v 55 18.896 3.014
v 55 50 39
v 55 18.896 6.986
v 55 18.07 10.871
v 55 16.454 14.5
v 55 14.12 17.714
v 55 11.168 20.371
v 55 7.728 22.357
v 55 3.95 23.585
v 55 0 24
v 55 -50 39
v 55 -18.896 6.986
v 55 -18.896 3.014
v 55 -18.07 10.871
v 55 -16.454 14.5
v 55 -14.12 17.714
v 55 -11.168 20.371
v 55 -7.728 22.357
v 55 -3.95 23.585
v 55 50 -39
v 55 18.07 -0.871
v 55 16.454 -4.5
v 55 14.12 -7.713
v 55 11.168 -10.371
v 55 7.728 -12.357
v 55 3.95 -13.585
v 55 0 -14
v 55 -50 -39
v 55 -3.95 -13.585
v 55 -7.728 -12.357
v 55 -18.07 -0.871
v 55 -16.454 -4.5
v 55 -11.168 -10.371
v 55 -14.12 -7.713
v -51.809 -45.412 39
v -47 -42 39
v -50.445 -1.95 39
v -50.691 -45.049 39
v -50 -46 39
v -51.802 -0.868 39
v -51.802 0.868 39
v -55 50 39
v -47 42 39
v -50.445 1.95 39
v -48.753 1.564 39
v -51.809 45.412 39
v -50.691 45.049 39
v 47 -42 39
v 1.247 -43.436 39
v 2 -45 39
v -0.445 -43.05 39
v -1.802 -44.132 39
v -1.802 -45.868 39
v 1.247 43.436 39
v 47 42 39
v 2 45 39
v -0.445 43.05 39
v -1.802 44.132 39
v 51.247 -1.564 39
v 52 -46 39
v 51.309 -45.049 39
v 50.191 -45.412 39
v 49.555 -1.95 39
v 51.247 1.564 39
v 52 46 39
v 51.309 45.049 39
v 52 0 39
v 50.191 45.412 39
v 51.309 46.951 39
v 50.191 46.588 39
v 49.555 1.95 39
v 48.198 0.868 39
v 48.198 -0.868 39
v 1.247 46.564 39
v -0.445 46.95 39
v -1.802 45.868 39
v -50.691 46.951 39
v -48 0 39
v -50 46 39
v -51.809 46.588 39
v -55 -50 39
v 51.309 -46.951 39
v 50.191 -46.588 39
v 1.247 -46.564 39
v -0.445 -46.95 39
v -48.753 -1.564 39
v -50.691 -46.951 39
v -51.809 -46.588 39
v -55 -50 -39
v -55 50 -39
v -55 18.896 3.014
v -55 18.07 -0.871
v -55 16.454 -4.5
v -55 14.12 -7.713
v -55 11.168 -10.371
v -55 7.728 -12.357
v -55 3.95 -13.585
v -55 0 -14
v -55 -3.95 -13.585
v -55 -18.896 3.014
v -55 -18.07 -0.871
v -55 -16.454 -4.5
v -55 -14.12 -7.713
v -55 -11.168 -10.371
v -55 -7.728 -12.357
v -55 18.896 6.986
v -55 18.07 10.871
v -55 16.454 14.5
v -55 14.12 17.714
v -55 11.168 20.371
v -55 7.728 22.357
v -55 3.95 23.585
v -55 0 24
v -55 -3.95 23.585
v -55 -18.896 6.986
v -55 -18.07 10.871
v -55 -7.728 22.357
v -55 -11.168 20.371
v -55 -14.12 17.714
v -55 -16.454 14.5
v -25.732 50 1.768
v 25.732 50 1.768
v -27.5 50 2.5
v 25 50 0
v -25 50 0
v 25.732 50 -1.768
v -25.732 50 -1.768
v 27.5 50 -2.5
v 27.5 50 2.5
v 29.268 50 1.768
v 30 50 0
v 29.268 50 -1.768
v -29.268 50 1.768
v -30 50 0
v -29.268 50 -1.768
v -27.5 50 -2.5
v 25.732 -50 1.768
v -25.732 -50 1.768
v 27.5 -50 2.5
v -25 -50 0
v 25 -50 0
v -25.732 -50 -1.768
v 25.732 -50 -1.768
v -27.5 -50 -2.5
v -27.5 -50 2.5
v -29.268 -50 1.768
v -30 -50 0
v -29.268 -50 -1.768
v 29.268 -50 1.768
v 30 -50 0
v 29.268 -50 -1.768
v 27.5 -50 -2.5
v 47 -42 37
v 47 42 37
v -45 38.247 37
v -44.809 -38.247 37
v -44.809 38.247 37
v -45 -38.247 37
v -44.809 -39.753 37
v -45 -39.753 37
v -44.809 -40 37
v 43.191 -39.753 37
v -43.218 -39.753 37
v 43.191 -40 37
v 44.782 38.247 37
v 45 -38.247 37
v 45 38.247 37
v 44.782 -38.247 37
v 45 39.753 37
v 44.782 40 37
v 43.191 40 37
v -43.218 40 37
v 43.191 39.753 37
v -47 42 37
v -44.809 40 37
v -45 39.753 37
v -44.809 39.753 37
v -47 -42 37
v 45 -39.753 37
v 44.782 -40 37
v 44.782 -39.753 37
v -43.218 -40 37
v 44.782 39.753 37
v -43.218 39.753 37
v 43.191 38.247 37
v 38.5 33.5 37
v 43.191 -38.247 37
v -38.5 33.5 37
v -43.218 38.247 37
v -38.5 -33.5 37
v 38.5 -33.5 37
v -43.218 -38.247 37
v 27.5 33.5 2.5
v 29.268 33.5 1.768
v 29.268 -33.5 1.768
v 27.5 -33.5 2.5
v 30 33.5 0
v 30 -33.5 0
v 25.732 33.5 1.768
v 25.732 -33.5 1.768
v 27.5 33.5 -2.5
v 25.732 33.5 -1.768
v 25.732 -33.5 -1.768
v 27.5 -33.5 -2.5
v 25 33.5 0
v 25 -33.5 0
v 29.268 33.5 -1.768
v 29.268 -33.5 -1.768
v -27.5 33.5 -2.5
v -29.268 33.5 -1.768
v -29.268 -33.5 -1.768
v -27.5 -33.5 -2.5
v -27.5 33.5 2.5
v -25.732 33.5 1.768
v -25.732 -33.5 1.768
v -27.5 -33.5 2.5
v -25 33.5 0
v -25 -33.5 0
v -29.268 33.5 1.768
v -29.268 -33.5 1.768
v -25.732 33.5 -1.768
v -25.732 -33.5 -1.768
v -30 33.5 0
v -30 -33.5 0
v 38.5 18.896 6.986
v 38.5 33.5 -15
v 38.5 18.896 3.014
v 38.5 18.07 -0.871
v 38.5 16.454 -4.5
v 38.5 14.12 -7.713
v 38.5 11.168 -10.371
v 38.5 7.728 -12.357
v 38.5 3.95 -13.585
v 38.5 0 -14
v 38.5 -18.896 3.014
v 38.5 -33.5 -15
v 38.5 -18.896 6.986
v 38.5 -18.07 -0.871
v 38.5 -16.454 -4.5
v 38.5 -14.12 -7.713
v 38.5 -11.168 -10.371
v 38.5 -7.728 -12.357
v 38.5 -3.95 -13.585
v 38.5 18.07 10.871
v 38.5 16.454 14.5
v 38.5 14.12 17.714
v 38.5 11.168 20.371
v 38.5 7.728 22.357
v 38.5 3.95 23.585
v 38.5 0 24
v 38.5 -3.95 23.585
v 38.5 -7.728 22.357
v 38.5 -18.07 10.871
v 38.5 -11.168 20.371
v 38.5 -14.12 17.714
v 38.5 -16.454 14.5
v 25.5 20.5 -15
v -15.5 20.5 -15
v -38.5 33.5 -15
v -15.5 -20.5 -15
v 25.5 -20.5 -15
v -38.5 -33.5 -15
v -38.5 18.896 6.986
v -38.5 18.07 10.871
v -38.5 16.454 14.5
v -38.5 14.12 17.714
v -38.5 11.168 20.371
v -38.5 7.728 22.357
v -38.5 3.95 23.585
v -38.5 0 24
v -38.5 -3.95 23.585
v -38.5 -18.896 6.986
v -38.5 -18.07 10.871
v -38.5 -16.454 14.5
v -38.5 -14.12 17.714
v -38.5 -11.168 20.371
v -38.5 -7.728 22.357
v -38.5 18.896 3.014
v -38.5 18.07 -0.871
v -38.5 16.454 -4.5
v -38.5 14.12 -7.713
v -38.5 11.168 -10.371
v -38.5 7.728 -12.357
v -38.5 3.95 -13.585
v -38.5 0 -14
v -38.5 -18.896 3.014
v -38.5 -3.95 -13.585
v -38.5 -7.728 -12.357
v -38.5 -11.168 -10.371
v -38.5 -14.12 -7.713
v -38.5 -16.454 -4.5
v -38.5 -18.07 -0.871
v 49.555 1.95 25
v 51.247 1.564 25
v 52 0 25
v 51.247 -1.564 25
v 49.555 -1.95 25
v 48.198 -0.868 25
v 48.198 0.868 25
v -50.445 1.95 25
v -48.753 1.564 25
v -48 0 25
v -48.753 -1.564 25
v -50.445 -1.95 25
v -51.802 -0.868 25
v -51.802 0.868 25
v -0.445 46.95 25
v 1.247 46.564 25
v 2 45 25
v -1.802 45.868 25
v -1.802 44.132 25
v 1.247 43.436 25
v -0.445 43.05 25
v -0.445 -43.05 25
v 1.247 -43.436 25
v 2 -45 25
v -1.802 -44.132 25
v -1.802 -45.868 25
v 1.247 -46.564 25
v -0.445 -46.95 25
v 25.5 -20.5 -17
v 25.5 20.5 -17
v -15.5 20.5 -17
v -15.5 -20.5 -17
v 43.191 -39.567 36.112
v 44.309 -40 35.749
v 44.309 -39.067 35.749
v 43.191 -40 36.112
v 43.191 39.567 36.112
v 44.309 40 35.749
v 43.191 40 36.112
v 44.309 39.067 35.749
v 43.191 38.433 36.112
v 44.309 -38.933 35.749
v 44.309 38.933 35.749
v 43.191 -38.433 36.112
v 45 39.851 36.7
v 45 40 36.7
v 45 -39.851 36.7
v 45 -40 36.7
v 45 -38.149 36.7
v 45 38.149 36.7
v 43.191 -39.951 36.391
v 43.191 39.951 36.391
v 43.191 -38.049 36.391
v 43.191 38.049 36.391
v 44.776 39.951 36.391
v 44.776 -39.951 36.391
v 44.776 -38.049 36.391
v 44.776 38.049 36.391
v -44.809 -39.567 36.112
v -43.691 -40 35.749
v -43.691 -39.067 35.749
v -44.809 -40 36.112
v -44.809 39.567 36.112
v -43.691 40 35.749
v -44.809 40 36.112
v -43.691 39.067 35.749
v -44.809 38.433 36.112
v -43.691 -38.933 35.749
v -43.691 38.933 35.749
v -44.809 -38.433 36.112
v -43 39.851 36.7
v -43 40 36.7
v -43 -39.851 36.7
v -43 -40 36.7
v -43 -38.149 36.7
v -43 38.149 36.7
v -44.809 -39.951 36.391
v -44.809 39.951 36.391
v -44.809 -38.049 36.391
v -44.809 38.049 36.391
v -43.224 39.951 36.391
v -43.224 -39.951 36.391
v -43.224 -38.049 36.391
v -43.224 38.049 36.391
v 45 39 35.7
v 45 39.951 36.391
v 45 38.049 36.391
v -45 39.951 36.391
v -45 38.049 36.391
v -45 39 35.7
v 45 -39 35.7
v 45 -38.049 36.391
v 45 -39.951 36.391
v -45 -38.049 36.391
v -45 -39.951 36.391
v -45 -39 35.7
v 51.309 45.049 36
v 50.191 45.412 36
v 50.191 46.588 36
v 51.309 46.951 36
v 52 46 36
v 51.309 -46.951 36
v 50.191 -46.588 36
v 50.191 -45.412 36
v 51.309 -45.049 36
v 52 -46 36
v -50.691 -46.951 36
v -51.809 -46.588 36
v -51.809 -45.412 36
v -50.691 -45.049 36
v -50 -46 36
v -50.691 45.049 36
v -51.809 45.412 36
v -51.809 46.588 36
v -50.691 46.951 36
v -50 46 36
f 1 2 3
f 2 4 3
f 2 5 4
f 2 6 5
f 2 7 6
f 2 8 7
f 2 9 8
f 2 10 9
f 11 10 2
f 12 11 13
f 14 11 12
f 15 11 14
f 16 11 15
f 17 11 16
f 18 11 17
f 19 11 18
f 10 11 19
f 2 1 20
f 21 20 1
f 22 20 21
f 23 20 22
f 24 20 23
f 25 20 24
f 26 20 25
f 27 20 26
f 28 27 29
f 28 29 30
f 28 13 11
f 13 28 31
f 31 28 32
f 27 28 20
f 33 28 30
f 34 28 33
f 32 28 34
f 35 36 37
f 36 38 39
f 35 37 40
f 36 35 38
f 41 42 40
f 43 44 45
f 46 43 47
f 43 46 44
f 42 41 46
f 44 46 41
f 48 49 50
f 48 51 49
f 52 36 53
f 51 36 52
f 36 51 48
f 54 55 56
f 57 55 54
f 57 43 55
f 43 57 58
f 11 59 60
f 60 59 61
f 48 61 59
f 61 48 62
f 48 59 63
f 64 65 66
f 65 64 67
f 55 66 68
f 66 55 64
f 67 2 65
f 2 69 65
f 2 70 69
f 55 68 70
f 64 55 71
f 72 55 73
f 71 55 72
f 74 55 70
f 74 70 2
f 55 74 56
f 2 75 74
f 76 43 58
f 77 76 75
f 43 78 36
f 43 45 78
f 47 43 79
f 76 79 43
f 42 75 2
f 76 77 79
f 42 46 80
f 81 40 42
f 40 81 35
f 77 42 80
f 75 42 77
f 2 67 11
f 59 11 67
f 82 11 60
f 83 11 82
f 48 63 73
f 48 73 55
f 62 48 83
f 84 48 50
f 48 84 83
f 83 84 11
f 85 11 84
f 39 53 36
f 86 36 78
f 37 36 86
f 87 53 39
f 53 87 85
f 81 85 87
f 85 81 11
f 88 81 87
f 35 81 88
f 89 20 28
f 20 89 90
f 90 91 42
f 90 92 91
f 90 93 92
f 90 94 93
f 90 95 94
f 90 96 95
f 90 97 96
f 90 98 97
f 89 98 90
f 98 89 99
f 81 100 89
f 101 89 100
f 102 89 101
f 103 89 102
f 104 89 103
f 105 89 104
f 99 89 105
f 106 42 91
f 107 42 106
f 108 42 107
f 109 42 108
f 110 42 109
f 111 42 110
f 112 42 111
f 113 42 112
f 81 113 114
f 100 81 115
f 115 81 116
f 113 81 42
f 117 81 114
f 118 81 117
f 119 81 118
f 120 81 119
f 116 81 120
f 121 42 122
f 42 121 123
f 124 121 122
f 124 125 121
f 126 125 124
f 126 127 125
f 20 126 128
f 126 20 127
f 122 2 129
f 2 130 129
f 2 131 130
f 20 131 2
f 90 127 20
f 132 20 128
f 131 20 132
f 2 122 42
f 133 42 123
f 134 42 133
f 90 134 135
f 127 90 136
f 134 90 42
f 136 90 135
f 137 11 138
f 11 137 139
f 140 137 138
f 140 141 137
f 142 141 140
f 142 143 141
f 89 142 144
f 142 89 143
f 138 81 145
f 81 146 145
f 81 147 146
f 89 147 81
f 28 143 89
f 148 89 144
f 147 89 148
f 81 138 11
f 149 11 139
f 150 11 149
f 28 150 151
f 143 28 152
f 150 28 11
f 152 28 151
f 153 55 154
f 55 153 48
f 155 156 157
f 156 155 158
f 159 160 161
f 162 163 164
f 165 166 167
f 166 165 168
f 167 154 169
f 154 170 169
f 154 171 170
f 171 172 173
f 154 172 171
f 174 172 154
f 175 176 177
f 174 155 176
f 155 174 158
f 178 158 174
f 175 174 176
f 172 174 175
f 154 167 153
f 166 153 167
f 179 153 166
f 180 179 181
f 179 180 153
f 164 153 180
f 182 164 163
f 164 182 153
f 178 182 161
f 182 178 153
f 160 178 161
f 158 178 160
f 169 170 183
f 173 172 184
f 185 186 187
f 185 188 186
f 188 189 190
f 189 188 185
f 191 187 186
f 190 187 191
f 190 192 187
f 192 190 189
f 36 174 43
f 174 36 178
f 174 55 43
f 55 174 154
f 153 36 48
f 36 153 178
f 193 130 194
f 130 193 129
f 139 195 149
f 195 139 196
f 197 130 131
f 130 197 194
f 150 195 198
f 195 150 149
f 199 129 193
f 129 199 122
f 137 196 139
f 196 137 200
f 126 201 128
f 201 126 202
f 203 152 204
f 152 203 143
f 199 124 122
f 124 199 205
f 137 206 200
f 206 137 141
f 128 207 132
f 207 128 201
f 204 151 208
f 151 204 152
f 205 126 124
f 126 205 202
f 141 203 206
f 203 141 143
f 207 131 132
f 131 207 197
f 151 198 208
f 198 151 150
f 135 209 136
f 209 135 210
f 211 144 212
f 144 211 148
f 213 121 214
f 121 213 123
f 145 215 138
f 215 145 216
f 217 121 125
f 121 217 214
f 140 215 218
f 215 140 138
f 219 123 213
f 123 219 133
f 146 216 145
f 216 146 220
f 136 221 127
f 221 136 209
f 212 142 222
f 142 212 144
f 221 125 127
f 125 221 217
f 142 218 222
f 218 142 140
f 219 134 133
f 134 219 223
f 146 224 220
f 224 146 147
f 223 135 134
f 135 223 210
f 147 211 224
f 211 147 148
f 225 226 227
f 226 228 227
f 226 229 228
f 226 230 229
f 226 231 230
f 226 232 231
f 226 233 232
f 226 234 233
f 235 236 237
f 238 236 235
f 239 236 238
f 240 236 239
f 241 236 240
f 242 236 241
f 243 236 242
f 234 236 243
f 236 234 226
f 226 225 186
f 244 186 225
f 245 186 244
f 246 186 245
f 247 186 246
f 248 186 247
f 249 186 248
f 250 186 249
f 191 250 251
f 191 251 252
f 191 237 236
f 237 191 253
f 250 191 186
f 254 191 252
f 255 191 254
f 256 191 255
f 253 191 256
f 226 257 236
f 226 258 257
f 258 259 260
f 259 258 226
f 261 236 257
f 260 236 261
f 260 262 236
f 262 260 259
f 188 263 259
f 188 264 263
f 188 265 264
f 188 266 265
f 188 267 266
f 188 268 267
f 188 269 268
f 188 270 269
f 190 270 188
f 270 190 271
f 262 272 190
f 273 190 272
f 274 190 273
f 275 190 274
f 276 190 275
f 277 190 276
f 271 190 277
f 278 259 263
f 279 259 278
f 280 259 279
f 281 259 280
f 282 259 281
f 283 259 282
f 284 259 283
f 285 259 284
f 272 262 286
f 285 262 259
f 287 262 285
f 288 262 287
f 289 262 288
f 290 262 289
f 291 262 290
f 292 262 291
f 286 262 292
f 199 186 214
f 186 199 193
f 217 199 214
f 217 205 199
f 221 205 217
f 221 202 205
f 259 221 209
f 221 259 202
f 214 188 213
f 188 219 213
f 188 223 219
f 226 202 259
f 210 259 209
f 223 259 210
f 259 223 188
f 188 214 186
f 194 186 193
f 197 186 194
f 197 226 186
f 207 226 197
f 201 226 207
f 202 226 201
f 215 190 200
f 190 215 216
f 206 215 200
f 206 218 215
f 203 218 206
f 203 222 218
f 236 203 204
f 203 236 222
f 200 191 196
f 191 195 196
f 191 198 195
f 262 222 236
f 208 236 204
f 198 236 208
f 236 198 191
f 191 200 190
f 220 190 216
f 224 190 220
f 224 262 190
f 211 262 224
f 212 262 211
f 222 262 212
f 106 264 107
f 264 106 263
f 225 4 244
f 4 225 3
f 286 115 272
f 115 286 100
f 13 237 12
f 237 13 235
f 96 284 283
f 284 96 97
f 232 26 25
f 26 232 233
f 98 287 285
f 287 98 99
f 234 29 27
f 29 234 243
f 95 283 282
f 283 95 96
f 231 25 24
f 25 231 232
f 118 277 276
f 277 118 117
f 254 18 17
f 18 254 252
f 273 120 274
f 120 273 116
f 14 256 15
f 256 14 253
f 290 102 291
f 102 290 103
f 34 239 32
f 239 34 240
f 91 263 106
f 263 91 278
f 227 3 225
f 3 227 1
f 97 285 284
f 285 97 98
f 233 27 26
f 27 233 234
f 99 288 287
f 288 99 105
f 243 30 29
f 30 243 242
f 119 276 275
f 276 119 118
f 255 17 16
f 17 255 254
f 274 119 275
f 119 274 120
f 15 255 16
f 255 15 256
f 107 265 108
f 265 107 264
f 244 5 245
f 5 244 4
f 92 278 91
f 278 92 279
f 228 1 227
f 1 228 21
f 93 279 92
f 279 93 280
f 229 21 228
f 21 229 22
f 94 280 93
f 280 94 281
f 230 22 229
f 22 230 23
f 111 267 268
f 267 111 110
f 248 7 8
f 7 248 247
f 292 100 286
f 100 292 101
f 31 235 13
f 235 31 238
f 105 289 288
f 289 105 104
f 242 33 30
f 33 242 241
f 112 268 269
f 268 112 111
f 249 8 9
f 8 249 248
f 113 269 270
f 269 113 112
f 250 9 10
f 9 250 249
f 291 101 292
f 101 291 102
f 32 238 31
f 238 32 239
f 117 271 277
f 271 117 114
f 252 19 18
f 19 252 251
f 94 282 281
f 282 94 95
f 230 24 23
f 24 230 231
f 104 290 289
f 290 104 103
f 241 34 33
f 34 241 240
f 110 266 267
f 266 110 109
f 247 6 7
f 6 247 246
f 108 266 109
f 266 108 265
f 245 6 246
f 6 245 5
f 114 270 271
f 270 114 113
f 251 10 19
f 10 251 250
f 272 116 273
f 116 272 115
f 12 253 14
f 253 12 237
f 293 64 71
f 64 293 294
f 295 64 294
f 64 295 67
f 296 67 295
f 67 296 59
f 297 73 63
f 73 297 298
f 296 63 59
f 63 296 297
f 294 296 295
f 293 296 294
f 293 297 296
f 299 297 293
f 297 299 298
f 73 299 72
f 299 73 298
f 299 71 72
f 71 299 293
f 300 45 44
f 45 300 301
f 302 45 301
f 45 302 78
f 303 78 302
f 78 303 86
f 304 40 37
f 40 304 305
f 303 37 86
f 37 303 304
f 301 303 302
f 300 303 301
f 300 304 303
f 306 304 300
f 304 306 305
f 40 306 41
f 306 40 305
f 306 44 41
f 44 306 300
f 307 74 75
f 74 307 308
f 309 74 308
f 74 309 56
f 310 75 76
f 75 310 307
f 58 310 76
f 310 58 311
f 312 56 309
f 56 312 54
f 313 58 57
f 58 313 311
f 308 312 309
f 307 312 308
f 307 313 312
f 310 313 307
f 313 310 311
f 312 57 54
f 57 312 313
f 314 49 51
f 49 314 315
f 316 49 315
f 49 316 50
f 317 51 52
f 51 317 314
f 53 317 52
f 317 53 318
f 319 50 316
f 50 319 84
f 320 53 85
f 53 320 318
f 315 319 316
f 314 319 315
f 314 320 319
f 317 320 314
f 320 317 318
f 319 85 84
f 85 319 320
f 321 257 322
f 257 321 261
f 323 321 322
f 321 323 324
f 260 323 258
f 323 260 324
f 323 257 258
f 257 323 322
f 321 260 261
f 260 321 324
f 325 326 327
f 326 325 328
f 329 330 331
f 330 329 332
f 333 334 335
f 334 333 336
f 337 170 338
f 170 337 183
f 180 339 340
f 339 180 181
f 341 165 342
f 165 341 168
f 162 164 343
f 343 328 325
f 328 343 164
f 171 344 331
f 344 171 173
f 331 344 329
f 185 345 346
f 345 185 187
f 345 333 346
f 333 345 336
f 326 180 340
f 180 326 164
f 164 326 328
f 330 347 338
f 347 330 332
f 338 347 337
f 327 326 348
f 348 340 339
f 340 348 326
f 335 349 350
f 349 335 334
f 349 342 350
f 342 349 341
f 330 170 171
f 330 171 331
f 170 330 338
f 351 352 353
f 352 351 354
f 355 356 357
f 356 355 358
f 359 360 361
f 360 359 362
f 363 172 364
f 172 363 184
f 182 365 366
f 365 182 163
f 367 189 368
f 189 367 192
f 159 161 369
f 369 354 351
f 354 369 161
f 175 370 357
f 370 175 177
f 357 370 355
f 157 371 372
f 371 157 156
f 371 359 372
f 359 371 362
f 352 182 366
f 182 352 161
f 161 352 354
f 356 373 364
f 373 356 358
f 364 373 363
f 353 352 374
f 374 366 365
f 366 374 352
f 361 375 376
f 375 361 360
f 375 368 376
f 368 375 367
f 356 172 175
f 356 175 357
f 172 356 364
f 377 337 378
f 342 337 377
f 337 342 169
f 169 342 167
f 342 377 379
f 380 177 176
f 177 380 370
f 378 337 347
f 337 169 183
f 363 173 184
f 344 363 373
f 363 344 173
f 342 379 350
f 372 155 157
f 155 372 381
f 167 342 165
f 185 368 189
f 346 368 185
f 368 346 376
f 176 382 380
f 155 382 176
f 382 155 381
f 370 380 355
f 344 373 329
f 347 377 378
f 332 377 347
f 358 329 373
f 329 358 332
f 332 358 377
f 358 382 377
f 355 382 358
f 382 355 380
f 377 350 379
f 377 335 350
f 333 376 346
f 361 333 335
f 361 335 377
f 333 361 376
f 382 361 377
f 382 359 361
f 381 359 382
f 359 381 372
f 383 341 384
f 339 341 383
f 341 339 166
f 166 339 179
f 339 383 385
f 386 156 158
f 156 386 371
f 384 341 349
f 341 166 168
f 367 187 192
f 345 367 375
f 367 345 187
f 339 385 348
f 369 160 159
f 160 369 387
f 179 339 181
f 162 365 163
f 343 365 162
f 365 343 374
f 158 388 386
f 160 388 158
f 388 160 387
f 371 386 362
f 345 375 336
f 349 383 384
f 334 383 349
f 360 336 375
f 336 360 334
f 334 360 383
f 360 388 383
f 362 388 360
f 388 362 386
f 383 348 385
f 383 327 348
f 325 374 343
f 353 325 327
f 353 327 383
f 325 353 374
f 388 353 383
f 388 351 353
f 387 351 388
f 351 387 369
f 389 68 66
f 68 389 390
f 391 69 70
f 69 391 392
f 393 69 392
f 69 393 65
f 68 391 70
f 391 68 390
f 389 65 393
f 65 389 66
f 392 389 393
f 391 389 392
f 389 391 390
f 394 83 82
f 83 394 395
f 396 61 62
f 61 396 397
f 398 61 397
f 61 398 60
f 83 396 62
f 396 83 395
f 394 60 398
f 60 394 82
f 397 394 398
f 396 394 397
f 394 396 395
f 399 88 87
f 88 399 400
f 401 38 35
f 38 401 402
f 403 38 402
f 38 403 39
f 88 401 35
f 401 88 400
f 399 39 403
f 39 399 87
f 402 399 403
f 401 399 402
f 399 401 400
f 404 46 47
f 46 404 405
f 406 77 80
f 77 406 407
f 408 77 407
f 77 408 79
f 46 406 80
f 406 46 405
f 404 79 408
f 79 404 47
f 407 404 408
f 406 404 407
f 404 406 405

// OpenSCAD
//Outer Shell
//x = length in x
//y = length in y
//z = length in z
//t_x = thickness x
//t_y = thickness y
//t_z = thickness z
//s_d= screw diameter
//s_l= screw length
//or_rad= o-ring rad
//q_t = quartz thickness

module outer_shell(x, y, z, t_x, t_y, t_z,s_d,s_l,or_rad,q_t)
 {
    
     window_l= x-t_x;
     window_w= y-t_y;
    
     difference(){
     difference(){
     difference(){
     difference(){
     difference(){
     difference(){
     difference(){
     difference(){
     difference(){
     difference(){ 
     difference(){
     difference(){
     difference(){
        difference(){
            difference(){
                difference(){
                    difference(){
                        difference(){
                        cube([x,y,z+2*q_t], center=true);
                            
                            
                            translate([0,0,z/2+q_t])
                            cube([x-16,y-16,q_t], center= true);}
                            
                            
                        rotate([90,0,0])
                        translate([x/4,0,0])   
                        cylinder(r=2.5,h=(y+1), center=true);}
                    rotate([90,0,0])
                    translate([-x/4,0,0])    
                    cylinder(r=2.5,h=(y+1), center=true);}
    
                 translate([0,0,t_z])
                 {cube ([window_l,window_w,z], center=true);} }
    
    //electronics windows
    
                    rotate([0,90,0])
                    translate([-5,0,0])    
                    cylinder(r=19,h=(x+1), center=true);}

 
 //screws holes for quartz
 //1
 translate([x/2-5,0,z/2])
 cylinder(r=s_d/2,h=s_l, center=true);
 }
//2
  translate([-(x/2-5),0,z/2])
 cylinder(r=s_d/2,h=s_l, center=true);
}
//3
translate([0,(y/2-5),z/2])
 cylinder(r=s_d/2,h=s_l, center=true);
}
//4
translate([0,-(y/2-5),z/2])
 cylinder(r=s_d/2,h=s_l, center=true);

}
//slot for substrate holder
translate([5,0,0])
cube([41,41,34], center=true);

}
 //o ring holder
    rotate([90,0,0])
    translate([x/2-11,z/2+or_rad+.7,0])   
    cylinder(r=or_rad,h=(y-20), center=true);
}                  

    rotate([90,0,0])
    translate([-(x/2-11),z/2+or_rad+.7,0])   
    cylinder(r=or_rad,h=(y-20), center=true);
}   
 
rotate([0,90,0])
    translate([-(z/2+or_rad+.7),y/2-11,0])   
    cylinder(r=or_rad,h=(y-10), center=true);
}
rotate([0,90,0])
    translate([-(z/2+or_rad+.7),-(y/2-11),0])   
    cylinder(r=or_rad,h=(y-10), center=true);

 }
 //guide holes for screwing
//1
translate([x/2-4,y/2-4,z/2+q_t])
cylinder(r=1,h=6, center = true);
}
//2
translate([x/2-4,-(y/2-4),z/2+q_t])
cylinder(r=1,h=6, center = true);
}
//3
translate([-(x/2-4),-(y/2-4),z/2+q_t])
cylinder(r=1,h=6, center = true);
}
//4
translate([-(x/2-4),(y/2-4),z/2+q_t])
cylinder(r=1,h=6, center = true);
}
 
 
 }
 outer_shell(110,100,70,33,33,20,4,20,1,4);
 
